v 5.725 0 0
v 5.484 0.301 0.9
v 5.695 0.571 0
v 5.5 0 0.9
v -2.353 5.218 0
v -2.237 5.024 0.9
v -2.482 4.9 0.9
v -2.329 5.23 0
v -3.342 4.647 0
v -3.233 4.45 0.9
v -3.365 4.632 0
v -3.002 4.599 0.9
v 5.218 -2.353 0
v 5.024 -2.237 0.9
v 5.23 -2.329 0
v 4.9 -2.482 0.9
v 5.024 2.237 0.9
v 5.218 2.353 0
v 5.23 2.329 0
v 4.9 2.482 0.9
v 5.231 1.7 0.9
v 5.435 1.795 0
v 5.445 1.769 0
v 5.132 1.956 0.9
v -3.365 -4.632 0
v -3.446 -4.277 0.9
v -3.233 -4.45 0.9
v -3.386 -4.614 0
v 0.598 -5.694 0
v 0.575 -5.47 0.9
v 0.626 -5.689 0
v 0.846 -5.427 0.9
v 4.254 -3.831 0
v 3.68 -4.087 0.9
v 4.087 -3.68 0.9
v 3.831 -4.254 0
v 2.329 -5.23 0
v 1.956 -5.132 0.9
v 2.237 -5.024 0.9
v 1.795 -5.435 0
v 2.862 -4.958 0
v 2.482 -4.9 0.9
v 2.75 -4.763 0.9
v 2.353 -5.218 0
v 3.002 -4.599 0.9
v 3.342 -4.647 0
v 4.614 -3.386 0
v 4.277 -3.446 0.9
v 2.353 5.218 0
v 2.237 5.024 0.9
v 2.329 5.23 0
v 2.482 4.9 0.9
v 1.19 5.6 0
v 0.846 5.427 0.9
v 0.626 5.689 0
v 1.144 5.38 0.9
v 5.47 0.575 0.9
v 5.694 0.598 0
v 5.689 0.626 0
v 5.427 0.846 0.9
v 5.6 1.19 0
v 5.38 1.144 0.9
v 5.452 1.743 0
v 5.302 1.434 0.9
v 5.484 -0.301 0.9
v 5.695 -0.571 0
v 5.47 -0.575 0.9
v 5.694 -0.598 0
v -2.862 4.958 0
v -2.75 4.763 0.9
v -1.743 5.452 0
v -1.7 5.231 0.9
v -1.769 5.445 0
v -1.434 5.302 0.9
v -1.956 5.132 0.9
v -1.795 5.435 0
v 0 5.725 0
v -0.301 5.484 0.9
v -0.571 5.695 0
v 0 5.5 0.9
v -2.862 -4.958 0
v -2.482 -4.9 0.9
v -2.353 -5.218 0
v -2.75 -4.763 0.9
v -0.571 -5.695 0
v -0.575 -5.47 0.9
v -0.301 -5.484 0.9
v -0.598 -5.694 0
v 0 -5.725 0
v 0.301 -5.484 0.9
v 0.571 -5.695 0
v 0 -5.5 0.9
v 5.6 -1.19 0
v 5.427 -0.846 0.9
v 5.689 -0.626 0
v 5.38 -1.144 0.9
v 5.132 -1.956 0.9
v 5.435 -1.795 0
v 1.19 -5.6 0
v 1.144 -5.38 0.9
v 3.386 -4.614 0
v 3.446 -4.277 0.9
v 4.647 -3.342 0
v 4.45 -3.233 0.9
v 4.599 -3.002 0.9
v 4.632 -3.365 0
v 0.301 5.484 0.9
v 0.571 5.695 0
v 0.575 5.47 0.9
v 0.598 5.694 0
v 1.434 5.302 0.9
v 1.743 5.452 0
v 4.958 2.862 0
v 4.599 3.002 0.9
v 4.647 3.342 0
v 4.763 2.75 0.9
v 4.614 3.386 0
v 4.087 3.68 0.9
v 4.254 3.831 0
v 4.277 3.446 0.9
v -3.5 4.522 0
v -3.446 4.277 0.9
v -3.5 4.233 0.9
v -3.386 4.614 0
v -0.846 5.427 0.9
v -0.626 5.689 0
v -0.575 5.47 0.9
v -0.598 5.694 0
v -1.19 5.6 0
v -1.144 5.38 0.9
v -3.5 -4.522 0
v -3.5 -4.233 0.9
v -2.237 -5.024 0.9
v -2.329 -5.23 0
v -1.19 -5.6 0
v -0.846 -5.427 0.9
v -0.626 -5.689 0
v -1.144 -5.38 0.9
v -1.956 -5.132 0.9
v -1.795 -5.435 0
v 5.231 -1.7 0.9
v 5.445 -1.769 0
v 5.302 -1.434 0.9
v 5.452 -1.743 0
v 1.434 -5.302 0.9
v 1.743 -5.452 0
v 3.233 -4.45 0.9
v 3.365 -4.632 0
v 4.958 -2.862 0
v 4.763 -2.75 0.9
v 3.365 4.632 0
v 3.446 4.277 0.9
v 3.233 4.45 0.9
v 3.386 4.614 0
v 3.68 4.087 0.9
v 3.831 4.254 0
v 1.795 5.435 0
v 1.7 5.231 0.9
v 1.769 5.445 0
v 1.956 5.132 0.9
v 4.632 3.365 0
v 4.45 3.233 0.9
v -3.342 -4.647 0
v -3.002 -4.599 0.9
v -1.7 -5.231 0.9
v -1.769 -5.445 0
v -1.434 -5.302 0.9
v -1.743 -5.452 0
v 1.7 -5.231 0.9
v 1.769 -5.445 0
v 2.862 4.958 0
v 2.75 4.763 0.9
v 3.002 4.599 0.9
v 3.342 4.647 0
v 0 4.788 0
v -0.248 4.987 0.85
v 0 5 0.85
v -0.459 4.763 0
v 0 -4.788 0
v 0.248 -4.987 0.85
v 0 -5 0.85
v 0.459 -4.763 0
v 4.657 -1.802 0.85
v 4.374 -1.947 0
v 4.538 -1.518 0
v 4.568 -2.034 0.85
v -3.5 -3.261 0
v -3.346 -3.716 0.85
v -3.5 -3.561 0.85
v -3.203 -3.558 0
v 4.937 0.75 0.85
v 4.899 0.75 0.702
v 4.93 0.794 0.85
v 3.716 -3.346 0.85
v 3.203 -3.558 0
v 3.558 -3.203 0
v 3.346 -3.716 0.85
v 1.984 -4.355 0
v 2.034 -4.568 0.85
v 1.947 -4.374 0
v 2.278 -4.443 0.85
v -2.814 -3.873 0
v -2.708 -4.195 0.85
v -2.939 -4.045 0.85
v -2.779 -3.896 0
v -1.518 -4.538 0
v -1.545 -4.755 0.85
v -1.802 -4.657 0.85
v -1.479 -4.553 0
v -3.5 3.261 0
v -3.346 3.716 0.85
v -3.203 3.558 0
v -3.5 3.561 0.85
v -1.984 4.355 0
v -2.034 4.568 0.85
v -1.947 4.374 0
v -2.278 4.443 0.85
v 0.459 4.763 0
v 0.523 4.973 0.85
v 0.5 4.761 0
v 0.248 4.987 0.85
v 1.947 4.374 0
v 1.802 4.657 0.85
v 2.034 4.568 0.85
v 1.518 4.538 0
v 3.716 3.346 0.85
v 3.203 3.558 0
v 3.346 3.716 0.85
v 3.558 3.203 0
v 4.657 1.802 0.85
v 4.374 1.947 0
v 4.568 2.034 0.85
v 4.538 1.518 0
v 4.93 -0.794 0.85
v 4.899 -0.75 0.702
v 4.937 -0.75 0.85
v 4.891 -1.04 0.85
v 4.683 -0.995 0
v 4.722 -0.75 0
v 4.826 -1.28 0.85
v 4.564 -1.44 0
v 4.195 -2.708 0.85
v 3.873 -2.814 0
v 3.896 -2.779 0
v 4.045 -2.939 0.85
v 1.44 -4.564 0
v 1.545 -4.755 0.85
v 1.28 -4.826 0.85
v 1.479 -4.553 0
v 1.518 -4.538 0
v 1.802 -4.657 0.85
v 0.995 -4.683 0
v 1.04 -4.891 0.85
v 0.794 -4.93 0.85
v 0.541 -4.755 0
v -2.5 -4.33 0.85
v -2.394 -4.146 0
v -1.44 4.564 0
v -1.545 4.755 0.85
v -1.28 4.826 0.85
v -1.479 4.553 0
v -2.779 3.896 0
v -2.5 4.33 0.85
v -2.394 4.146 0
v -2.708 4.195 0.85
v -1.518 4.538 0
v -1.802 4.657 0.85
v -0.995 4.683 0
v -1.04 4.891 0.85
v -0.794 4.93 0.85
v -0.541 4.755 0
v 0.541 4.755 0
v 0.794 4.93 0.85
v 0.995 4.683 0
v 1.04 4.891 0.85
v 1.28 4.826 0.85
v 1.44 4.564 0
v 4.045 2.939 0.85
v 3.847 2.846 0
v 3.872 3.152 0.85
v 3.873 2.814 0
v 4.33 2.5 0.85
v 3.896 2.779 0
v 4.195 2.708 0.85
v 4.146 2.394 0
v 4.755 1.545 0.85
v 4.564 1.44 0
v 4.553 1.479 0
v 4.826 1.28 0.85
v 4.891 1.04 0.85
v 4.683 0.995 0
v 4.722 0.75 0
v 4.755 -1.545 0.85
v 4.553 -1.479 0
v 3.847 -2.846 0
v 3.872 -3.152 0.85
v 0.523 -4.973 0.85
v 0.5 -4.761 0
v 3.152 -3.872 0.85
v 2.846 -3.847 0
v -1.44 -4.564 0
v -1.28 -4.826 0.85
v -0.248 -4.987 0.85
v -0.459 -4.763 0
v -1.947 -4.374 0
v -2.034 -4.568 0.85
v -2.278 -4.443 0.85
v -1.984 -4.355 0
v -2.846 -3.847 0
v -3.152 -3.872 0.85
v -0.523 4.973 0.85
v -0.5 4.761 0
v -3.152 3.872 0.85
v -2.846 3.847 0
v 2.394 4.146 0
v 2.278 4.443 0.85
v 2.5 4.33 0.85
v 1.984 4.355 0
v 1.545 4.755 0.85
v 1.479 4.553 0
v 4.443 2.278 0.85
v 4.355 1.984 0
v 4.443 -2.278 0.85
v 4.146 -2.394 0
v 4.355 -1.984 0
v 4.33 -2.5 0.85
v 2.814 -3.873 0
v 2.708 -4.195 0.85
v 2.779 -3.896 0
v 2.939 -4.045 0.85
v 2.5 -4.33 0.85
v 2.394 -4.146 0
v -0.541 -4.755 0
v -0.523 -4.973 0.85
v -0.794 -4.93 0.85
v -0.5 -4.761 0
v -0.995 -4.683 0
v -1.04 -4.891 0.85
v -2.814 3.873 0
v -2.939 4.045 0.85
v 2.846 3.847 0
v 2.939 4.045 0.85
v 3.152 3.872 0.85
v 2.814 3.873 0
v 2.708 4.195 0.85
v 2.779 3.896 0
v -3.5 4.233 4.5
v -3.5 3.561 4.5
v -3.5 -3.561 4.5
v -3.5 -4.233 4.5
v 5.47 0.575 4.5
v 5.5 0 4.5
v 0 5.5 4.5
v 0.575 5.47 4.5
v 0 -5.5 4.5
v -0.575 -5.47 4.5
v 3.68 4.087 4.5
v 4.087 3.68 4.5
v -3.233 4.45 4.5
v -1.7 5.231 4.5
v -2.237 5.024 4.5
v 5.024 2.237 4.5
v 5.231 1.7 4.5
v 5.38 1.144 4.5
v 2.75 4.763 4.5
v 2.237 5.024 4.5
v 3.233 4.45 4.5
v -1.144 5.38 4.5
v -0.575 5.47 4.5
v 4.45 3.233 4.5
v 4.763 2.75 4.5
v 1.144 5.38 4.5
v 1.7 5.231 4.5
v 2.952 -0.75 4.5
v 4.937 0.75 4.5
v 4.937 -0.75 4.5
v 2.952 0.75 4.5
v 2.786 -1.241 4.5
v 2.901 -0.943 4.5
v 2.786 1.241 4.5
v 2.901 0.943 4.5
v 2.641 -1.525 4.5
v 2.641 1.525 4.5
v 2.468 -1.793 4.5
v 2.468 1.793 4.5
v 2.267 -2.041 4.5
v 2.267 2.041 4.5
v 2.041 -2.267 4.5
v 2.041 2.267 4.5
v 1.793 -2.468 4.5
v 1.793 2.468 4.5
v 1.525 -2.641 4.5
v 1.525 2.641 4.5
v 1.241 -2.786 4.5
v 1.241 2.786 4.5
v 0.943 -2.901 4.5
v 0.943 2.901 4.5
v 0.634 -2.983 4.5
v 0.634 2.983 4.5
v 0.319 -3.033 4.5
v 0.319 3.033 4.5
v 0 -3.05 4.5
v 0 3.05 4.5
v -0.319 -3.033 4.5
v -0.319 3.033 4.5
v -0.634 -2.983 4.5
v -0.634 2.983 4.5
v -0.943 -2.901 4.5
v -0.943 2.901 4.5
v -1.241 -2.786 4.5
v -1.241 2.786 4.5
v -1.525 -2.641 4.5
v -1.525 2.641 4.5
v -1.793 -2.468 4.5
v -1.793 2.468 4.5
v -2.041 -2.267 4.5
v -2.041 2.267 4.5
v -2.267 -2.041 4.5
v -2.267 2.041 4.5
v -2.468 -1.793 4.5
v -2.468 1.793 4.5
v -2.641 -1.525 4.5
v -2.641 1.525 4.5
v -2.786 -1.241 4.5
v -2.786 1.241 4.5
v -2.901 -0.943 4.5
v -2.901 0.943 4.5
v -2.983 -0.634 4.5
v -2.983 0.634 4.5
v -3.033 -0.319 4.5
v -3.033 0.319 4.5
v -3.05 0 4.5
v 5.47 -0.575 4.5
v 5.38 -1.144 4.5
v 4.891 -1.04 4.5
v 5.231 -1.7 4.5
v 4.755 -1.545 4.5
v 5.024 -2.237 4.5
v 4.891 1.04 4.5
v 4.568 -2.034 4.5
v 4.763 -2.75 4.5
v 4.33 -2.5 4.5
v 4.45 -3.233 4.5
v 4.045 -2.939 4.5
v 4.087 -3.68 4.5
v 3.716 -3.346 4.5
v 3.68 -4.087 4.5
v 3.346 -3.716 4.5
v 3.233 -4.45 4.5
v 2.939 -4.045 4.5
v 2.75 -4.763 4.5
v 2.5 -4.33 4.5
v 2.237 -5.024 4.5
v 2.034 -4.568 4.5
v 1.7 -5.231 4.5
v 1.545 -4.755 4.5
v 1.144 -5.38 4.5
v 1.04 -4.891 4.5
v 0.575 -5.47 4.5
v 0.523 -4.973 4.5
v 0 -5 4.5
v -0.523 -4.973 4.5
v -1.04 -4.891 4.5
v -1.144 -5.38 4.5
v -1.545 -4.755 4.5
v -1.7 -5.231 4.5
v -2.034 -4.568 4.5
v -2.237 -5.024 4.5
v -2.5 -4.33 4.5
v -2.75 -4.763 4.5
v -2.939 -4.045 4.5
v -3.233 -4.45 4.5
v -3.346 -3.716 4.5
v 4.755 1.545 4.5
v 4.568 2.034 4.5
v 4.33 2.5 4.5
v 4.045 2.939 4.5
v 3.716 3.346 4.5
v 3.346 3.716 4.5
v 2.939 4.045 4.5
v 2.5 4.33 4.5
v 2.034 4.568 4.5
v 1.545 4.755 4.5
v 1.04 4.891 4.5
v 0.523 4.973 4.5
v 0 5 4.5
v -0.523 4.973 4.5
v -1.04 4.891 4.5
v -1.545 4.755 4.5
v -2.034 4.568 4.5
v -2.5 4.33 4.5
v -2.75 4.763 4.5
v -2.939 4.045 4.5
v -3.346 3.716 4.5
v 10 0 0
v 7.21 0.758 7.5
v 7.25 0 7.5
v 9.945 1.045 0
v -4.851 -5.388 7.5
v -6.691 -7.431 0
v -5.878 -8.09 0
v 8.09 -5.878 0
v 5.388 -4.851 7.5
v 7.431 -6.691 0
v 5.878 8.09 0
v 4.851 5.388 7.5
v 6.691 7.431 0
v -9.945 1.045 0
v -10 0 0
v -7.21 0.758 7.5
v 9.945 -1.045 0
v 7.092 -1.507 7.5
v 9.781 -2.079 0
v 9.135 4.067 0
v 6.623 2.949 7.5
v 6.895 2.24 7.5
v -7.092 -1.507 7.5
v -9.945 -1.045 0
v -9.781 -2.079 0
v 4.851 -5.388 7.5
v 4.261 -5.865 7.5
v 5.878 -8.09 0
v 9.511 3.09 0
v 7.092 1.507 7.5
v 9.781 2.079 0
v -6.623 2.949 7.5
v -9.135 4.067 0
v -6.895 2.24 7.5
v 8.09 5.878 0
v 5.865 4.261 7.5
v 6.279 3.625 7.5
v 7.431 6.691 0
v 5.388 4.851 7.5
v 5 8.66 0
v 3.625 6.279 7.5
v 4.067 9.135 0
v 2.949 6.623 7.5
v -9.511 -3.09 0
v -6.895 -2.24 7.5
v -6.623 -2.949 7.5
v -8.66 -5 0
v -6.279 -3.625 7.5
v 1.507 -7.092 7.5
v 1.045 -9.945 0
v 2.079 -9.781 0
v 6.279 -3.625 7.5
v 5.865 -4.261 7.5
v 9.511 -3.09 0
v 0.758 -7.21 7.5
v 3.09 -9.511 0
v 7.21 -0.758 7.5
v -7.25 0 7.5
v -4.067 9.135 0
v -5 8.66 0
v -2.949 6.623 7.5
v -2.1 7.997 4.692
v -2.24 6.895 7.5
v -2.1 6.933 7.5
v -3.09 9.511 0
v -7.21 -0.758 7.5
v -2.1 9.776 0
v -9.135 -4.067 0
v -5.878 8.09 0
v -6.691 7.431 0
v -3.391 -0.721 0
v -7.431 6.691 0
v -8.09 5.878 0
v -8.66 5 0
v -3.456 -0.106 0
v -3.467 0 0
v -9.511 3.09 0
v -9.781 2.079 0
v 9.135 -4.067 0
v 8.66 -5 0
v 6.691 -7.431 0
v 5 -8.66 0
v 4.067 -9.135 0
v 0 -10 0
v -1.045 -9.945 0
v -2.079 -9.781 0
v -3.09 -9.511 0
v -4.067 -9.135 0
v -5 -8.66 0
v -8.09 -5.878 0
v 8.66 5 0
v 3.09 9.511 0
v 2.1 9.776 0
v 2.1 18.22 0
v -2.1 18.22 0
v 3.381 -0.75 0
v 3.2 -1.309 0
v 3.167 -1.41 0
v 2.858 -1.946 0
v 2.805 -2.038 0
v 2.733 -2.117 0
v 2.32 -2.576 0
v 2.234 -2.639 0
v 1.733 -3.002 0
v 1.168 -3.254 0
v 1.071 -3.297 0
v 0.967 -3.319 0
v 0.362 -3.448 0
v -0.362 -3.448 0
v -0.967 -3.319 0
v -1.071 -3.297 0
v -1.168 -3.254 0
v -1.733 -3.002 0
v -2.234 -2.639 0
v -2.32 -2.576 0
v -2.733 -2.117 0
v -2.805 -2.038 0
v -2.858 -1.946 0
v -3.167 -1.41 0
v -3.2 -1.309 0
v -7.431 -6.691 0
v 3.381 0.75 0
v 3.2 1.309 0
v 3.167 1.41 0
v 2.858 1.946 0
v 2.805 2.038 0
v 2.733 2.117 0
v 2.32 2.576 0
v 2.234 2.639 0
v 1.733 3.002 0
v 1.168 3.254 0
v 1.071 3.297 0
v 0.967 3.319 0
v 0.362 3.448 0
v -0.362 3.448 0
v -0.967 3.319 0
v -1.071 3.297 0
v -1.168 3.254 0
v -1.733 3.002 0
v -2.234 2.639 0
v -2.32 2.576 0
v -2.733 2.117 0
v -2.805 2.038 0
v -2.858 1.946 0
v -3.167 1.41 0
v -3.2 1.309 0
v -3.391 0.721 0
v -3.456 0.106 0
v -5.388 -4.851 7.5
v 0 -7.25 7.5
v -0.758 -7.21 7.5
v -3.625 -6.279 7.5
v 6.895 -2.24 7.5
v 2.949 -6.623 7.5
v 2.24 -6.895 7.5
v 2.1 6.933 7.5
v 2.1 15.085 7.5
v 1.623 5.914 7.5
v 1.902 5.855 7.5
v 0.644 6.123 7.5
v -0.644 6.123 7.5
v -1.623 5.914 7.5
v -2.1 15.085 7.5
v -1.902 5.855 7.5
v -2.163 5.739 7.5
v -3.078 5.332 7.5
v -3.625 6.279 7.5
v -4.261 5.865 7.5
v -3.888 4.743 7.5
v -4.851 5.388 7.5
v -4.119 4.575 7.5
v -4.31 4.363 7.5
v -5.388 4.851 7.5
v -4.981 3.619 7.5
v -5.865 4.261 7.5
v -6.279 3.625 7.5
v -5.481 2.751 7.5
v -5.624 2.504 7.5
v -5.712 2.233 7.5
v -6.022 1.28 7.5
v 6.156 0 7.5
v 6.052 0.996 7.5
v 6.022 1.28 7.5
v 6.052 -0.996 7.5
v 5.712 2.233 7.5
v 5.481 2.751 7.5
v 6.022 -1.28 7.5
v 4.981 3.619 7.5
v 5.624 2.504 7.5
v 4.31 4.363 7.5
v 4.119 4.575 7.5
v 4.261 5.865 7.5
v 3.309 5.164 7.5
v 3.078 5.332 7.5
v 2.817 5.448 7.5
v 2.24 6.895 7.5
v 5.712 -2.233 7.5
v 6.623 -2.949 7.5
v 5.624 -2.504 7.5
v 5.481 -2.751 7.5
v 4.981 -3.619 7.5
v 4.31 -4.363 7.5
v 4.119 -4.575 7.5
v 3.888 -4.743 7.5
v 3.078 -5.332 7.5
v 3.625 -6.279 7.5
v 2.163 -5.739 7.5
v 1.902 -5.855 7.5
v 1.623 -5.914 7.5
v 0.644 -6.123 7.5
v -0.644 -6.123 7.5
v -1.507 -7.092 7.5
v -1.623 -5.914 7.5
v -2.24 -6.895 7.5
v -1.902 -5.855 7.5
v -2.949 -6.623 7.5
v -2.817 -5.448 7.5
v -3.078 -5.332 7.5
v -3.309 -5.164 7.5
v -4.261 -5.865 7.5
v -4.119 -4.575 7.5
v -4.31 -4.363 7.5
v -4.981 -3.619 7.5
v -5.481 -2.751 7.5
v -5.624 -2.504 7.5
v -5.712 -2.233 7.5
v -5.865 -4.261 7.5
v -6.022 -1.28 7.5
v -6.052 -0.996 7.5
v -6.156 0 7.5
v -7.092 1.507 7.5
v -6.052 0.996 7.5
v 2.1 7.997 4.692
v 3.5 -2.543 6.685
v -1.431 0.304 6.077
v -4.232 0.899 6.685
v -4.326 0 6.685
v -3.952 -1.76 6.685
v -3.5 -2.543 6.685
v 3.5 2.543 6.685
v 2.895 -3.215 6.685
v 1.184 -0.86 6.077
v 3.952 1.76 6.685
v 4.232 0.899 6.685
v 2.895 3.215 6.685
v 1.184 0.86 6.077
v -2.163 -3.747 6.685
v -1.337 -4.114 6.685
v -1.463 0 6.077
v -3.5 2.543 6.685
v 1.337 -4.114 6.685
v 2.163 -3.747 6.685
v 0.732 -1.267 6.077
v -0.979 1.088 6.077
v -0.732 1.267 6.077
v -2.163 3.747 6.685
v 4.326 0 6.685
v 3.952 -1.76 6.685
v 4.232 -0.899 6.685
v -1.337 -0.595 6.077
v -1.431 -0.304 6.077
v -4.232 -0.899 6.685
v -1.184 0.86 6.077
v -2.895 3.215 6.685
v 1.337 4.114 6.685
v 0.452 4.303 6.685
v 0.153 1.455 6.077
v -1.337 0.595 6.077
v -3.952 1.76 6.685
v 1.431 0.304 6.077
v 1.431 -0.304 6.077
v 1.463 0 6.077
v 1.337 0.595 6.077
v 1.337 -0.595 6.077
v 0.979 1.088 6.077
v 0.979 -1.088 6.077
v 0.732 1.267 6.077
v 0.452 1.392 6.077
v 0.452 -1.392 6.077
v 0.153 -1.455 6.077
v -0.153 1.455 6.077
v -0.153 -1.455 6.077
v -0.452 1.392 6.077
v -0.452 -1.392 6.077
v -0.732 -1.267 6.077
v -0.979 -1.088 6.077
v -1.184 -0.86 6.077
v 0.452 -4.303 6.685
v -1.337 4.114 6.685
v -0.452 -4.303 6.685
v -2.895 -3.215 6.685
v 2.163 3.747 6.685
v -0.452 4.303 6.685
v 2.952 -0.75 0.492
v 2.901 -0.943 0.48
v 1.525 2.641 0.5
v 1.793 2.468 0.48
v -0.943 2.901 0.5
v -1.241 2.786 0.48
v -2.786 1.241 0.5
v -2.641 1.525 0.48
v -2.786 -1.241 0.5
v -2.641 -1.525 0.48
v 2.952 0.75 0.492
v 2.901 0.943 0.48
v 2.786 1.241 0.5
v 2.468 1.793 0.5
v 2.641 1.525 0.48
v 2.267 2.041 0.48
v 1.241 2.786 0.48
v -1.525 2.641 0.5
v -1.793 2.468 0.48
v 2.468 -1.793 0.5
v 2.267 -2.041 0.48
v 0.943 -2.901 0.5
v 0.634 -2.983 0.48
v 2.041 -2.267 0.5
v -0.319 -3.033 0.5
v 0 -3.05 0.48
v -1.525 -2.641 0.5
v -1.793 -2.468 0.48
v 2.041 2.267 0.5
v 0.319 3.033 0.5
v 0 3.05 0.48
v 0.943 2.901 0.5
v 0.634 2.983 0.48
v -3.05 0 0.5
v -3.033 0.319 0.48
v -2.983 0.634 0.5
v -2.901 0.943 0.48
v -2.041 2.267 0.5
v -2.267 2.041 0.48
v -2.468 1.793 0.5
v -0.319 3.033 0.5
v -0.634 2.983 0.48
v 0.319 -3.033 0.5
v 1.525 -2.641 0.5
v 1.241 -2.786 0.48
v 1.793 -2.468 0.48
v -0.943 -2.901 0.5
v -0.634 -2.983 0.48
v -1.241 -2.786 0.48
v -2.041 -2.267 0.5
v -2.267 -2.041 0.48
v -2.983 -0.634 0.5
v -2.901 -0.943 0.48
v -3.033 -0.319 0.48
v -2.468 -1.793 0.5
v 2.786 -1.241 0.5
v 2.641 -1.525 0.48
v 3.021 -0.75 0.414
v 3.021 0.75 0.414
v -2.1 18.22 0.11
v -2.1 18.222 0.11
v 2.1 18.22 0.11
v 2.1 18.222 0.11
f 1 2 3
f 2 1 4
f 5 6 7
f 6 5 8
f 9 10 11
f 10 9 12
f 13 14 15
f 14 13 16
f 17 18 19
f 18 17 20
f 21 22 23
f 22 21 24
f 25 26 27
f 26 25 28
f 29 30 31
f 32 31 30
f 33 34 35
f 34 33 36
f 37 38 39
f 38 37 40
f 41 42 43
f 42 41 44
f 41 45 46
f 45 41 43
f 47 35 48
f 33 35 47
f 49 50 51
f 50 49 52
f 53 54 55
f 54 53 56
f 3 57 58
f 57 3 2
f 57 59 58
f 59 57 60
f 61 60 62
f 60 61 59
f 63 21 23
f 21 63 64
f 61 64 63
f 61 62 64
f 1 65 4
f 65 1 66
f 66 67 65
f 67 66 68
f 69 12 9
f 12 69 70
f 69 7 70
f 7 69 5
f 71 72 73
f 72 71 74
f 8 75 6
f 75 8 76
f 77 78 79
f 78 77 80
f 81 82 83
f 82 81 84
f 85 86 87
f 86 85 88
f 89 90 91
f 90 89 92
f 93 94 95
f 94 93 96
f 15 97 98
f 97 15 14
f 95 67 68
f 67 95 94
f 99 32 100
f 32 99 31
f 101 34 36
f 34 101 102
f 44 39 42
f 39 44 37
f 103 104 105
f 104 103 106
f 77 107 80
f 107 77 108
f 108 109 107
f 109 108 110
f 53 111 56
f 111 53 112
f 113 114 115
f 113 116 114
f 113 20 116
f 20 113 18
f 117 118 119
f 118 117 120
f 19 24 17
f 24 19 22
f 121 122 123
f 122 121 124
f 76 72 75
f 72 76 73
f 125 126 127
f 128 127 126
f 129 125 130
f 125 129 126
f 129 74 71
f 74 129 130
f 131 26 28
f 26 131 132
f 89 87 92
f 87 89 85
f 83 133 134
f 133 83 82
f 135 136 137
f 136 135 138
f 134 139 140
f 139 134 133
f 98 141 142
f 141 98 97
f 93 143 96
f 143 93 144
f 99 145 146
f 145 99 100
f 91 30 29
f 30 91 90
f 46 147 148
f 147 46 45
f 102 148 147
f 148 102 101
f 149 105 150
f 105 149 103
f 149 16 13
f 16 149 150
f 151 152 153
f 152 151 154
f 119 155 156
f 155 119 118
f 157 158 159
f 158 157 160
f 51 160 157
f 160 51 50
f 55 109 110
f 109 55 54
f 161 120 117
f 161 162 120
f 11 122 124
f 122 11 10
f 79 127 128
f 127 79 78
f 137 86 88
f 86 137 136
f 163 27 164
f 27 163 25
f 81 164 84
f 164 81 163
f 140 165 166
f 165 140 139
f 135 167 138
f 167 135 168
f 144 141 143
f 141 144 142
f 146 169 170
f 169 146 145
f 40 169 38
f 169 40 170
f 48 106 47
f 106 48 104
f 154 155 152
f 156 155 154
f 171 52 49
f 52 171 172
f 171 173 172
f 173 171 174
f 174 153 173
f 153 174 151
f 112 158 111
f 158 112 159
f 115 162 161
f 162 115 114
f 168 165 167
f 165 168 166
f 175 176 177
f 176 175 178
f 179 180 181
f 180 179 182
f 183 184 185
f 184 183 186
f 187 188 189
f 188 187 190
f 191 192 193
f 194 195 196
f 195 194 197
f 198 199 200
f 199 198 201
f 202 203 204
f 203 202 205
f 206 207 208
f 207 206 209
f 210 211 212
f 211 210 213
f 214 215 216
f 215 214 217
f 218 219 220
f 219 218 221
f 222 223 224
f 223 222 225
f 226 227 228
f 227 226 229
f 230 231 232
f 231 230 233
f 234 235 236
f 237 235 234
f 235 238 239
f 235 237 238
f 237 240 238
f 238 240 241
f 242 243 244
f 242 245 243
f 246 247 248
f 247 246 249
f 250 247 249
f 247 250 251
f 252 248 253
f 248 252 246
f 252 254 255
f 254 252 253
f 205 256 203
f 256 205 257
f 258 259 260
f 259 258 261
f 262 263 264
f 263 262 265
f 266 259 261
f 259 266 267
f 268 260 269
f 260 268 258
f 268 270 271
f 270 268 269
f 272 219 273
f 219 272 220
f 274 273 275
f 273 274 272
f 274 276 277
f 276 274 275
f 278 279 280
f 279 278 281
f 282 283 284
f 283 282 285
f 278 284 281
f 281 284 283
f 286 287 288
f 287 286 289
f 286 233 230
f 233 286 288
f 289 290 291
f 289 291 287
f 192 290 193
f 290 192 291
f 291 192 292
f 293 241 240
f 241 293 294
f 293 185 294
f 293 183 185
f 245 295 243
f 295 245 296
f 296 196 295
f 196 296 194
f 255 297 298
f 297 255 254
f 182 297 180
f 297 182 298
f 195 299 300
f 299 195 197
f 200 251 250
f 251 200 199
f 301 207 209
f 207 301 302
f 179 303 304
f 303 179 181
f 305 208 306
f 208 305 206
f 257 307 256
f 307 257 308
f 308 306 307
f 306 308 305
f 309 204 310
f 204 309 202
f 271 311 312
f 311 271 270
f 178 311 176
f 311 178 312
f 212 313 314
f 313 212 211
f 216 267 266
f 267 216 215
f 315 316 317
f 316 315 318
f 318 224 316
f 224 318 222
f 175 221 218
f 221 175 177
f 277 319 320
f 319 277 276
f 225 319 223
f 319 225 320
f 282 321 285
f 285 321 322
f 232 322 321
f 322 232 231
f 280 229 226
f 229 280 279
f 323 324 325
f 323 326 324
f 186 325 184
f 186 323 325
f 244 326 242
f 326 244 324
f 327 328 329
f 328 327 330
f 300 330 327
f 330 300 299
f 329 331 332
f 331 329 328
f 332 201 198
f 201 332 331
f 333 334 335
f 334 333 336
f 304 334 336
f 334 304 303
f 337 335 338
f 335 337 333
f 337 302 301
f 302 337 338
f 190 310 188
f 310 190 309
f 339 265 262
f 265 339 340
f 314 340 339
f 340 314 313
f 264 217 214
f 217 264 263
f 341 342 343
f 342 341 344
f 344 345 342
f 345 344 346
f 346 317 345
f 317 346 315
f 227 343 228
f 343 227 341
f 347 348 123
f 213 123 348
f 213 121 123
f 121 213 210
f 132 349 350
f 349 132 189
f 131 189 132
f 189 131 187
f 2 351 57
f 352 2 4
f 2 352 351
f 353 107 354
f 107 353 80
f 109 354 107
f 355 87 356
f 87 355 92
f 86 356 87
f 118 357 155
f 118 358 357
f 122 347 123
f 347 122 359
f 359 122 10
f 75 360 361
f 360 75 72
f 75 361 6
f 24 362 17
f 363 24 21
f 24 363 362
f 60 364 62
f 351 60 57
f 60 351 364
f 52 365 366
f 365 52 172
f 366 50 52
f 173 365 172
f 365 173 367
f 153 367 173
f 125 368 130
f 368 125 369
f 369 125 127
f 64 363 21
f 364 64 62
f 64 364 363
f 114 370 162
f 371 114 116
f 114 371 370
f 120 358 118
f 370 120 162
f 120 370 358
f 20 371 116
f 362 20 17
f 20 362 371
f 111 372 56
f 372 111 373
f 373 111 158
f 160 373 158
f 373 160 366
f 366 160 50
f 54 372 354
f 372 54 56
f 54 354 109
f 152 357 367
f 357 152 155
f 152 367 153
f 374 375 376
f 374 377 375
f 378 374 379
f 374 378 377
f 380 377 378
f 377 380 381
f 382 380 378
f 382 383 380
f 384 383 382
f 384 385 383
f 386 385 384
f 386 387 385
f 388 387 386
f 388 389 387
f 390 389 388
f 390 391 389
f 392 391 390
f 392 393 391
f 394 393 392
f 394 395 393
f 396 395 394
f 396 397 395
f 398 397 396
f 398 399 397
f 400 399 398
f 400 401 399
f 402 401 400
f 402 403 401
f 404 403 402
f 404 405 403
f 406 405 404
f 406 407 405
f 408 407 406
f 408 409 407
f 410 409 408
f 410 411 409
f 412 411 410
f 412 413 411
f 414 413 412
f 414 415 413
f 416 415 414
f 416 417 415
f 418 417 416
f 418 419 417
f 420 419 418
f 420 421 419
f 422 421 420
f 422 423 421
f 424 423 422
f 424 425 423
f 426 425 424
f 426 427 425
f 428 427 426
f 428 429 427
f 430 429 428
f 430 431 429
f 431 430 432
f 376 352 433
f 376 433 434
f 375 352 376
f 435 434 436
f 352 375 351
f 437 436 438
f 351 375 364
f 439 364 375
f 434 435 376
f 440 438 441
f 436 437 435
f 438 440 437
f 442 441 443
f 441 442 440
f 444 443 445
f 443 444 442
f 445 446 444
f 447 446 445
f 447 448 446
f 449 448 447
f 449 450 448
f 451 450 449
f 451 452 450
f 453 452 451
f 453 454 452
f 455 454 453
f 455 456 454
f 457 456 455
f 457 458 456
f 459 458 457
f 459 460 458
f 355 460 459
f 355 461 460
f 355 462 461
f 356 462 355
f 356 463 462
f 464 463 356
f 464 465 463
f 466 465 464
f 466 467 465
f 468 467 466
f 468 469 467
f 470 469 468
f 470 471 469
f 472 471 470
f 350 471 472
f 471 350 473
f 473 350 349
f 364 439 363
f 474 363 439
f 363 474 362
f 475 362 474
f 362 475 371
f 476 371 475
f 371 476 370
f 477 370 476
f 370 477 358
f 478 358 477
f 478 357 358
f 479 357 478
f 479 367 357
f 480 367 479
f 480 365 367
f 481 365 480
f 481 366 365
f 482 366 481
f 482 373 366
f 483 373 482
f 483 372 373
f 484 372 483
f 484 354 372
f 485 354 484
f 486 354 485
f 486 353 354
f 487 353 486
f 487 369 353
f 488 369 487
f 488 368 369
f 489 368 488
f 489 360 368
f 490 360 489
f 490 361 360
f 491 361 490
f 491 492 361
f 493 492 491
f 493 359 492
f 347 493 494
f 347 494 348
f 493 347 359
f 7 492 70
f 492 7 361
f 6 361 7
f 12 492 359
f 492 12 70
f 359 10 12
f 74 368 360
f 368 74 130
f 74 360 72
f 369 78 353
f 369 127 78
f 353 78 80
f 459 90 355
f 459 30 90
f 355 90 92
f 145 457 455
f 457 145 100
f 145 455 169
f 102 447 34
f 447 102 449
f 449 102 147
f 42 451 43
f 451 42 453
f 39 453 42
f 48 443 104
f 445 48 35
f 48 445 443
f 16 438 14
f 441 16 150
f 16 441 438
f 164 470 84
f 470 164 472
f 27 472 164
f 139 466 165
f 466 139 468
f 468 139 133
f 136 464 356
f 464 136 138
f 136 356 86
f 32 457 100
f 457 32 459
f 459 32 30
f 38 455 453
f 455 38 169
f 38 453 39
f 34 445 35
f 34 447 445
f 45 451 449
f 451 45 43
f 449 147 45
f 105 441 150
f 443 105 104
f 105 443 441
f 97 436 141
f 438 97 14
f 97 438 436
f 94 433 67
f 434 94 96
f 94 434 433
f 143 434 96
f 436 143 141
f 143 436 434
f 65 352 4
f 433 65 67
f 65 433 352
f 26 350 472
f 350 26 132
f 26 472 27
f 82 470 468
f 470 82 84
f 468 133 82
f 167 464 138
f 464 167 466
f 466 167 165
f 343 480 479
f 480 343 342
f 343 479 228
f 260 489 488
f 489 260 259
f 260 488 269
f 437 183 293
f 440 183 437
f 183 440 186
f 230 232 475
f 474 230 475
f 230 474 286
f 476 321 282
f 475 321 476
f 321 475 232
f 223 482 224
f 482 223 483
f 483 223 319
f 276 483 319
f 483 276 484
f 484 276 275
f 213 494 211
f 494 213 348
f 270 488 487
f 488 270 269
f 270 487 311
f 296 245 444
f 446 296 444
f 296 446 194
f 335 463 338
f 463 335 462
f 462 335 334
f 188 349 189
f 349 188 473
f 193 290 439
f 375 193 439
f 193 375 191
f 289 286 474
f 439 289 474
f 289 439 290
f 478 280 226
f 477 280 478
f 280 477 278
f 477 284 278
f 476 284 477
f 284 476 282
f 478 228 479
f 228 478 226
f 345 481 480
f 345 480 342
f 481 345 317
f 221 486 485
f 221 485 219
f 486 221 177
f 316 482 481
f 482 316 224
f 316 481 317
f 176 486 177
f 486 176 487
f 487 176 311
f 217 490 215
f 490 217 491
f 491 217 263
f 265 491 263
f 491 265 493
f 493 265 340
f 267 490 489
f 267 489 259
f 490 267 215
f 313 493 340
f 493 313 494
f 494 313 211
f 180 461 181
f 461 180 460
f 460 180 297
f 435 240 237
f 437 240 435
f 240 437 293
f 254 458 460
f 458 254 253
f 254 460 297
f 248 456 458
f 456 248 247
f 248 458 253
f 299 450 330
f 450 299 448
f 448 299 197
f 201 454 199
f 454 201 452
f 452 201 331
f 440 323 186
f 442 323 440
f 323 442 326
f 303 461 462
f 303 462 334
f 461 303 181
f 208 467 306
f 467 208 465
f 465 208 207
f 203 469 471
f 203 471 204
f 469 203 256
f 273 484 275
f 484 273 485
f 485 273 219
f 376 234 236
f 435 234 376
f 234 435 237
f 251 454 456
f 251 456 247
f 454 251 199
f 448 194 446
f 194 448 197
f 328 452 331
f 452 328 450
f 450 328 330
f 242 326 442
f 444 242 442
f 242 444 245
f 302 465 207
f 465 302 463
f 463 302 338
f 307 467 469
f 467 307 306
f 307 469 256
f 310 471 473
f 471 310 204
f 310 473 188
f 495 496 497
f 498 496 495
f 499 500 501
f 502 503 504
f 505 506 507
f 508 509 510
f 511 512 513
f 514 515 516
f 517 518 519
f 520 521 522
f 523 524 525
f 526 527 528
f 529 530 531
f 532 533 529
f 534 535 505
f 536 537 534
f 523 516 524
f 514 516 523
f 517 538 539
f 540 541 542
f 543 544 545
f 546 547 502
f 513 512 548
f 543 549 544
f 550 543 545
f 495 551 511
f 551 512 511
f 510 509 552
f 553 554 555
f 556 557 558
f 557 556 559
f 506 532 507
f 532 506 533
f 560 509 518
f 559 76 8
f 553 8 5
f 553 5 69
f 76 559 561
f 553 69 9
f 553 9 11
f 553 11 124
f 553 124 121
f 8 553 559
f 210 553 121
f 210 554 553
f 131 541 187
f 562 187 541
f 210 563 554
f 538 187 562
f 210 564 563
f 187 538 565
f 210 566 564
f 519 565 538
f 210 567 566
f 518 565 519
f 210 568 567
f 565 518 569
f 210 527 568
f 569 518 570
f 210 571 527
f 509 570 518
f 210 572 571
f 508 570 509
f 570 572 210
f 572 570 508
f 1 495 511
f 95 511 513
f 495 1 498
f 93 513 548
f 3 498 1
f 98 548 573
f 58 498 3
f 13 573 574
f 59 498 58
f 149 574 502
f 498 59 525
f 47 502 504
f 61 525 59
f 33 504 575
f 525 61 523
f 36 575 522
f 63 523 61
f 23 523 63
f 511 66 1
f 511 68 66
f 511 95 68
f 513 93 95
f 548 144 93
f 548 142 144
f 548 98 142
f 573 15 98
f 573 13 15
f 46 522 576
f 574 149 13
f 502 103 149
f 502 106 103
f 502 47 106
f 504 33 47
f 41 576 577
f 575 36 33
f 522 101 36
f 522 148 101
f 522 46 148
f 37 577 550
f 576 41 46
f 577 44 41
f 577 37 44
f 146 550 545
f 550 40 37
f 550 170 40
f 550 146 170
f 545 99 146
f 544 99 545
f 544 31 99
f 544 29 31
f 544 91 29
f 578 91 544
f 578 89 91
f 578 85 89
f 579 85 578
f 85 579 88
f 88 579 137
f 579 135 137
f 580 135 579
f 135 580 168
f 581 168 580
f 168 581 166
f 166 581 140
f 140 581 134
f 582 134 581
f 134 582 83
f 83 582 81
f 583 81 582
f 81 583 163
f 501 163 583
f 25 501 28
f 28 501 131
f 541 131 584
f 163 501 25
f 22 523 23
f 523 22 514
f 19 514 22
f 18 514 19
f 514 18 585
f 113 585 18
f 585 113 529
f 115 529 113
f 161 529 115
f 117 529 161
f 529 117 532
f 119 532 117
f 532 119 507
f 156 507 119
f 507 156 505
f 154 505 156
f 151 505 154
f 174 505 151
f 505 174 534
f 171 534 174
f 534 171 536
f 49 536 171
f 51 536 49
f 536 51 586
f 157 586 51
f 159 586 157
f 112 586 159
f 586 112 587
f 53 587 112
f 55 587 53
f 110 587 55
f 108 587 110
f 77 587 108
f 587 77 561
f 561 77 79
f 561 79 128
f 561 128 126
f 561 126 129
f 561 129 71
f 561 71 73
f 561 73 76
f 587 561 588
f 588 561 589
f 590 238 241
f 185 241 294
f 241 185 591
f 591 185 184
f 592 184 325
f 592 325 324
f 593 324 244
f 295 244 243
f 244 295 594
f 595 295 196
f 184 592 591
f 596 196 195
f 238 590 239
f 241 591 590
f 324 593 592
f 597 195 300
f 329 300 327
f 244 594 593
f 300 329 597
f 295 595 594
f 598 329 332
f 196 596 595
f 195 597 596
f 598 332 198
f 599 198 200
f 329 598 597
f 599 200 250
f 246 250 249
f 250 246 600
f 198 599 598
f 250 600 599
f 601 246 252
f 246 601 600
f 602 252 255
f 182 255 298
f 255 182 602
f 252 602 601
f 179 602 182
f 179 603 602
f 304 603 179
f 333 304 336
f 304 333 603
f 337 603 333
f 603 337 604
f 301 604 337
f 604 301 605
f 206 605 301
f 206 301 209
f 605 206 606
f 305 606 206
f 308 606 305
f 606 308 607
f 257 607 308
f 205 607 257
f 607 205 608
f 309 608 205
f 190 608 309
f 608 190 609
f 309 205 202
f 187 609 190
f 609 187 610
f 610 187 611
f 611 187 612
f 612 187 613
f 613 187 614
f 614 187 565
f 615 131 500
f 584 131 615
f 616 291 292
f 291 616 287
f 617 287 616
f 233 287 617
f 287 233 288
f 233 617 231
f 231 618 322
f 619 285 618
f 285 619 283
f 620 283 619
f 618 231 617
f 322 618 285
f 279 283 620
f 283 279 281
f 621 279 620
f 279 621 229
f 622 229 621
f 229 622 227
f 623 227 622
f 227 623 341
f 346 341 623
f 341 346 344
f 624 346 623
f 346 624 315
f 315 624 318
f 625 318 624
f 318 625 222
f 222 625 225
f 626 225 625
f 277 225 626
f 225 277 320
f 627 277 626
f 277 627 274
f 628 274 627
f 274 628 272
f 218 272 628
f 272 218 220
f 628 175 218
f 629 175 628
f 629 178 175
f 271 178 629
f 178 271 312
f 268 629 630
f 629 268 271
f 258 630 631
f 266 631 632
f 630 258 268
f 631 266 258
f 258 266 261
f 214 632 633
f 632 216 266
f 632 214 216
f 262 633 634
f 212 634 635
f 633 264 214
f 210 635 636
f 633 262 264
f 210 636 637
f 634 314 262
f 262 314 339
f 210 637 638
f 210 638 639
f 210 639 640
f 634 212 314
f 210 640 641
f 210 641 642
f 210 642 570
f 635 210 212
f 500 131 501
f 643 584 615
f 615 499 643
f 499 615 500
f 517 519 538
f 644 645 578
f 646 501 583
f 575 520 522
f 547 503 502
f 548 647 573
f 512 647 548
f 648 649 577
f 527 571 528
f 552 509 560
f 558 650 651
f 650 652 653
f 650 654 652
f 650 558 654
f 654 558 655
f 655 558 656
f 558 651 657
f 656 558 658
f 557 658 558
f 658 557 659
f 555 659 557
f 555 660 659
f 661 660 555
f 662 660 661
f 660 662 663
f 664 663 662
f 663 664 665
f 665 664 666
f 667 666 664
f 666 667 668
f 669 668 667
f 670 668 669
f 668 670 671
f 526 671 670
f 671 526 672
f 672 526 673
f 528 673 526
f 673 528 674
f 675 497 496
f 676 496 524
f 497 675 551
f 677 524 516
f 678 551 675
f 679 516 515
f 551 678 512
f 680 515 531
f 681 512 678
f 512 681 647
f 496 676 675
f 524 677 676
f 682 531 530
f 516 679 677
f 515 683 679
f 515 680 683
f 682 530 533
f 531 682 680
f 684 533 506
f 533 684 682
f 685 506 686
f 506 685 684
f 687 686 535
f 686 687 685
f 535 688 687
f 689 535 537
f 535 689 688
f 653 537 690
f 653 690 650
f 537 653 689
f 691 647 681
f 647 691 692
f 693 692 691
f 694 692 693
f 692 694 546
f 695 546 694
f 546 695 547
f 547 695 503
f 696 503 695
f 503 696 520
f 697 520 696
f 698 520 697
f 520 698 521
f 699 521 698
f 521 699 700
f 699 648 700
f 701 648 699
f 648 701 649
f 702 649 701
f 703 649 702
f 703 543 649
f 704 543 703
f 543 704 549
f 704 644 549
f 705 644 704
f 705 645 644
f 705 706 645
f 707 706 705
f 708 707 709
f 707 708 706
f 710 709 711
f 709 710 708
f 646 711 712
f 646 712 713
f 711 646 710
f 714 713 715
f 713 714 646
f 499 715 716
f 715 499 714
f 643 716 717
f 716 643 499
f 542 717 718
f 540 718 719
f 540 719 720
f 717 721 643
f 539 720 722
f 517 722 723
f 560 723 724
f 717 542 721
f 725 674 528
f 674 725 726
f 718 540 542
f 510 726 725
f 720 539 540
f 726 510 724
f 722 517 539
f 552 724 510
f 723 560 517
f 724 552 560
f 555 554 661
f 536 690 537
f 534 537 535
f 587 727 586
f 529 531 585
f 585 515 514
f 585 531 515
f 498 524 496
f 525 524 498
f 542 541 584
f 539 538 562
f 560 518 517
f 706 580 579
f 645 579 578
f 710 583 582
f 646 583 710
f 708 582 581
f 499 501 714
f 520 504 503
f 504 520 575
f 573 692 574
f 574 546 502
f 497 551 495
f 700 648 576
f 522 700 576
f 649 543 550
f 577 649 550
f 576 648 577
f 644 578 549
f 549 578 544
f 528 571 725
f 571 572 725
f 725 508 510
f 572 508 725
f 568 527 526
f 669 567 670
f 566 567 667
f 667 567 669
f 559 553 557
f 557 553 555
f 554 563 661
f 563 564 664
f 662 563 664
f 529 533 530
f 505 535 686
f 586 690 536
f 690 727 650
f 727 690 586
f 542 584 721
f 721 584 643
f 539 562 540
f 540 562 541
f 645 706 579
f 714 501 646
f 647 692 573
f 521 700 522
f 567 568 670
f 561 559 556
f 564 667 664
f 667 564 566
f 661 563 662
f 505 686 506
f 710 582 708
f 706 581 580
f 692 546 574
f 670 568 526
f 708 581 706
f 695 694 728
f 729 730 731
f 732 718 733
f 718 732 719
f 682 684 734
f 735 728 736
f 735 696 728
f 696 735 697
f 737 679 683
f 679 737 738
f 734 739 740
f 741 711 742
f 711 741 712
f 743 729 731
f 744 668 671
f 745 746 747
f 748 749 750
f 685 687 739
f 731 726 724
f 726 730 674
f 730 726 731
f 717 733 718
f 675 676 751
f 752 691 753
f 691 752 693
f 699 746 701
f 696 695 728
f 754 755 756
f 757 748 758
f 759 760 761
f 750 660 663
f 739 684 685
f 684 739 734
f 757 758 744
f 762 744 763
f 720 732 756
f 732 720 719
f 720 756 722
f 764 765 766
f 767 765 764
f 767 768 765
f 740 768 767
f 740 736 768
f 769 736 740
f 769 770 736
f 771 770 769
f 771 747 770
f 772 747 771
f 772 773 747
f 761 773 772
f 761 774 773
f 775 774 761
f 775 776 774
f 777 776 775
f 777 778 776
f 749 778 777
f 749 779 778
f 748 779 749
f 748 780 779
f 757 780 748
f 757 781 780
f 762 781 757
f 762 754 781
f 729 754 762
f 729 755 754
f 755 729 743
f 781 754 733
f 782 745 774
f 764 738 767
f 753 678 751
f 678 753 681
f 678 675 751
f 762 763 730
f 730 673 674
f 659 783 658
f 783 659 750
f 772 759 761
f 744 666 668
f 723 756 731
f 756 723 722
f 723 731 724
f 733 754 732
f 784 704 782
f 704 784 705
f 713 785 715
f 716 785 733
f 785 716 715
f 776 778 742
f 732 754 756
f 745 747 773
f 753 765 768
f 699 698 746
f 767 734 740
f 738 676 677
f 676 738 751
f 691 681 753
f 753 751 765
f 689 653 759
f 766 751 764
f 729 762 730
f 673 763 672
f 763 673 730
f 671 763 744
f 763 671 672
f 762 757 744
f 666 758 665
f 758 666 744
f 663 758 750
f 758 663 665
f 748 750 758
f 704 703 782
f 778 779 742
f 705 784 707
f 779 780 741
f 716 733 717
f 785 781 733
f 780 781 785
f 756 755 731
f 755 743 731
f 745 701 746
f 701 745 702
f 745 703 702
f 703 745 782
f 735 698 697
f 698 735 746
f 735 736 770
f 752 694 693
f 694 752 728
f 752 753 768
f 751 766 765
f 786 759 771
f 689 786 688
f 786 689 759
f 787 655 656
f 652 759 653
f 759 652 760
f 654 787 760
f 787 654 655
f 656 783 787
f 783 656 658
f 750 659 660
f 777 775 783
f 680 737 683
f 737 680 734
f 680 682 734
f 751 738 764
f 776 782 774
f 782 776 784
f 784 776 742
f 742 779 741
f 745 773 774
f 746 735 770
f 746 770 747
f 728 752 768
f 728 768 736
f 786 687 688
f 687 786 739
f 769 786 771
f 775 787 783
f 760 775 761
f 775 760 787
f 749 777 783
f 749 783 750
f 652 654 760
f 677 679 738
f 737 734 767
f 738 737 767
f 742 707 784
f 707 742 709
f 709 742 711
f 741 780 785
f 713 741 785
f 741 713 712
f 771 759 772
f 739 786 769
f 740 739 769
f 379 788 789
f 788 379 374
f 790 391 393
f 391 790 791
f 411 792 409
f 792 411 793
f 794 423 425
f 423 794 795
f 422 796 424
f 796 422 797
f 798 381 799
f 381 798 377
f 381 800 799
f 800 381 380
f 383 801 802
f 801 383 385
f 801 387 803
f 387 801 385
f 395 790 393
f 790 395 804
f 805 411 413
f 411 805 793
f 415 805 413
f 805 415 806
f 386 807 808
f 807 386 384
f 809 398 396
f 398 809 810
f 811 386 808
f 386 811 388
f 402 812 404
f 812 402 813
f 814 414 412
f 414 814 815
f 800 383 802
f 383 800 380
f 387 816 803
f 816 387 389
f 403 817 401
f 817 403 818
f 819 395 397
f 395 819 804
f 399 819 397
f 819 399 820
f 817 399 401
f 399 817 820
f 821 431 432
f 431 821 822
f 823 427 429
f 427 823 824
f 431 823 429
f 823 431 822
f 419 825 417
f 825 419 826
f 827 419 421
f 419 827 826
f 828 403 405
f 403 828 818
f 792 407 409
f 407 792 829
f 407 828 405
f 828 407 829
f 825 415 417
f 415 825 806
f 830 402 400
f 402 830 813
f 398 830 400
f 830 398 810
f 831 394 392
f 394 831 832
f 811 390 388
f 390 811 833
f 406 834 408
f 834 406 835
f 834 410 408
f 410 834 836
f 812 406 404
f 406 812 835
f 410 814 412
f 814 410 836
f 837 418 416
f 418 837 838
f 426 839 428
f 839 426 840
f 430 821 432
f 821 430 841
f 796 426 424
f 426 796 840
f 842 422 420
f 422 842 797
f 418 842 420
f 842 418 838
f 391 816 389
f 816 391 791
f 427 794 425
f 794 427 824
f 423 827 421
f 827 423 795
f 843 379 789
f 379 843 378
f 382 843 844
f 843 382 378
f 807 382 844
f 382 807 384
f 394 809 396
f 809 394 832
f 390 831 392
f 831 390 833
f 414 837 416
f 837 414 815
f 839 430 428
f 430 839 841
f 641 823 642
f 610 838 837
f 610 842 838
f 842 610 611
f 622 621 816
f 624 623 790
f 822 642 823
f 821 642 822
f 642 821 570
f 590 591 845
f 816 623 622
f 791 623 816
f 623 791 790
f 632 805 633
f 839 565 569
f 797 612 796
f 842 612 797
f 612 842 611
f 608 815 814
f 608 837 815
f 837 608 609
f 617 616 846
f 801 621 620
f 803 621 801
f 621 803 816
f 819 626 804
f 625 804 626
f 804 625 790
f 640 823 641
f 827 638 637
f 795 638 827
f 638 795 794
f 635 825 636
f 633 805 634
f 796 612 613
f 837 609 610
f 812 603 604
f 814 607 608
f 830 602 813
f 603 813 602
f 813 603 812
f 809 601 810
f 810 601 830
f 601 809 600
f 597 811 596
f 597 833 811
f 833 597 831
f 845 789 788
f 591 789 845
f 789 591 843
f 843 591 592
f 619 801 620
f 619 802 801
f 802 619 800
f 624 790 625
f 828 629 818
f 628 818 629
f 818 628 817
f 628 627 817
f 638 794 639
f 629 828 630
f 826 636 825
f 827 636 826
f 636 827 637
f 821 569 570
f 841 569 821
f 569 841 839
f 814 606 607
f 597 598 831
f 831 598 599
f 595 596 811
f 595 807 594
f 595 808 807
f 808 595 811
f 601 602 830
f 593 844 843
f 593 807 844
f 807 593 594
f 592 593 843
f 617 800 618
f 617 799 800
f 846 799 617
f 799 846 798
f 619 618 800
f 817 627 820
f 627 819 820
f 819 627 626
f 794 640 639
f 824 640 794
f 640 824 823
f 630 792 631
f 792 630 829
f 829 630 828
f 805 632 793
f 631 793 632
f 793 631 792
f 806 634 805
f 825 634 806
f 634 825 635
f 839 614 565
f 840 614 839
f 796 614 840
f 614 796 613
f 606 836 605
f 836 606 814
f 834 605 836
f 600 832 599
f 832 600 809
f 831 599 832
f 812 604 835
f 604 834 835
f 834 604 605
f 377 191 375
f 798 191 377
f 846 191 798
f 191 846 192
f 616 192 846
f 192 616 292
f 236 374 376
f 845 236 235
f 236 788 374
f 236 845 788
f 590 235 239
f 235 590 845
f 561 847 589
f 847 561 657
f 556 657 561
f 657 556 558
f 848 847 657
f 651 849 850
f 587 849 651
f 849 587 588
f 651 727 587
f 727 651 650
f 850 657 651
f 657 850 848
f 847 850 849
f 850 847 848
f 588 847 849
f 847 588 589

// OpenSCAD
// PRUSA iteration3
// LCD Knob
// GNU GPL v3
// Josef Průša <iam@josefprusa.cz> and contributors
// http://www.reprap.org/wiki/Prusa_Mendel
// http://prusamendel.org

difference()
{
    // main body
    translate([0, 0, 0]) rotate(a = [0, 0, 0]) cylinder(h = 7.5, r1 = 10, r = 7.25, $fn = 60);
    translate([0, 0, 20]) rotate(a = [0, 0, 0]) sphere(14);

    // knob cutout
    translate([0, 0, -0.1]) rotate(a = [0, 0, 0]) cylinder(h = 4.6, d = 6.1, $fn = 60);
    translate([0, 0, -0.1]) rotate(a = [0, 0, 0]) cylinder(h = 0.6, d1 = 7.1, d2 = 6.1 , $fn = 30);
    translate([0, 0.75, -0.1]) rotate(a = [0, 0, -90]) cube([1.5, 5.3, 4.6]);

    // first layer correction
    union()
    {
        difference()
        {
            translate([0, 0, -0.1]) rotate(a = [0, 0, 0]) cylinder(h = 2, d1 = 11.5, d2 = 10.5, $fn = 60);
            translate([0, 0, -0.15]) rotate(a = [0, 0, 0]) cylinder(h = 2, d1 = 9.5, d2 = 10.5, $fn = 60);
            translate([0, 0, 1]) rotate(a = [0, 0, 0]) cylinder(h = 2, d = 13, $fn = 30);
            translate([-13.5, -6, -0.1]) rotate(a = [0, 0, 0]) cube([10, 12, 4.6]);
        }
    }

    difference()
    {
        translate([0, 0, -0.1]) rotate(a = [0, 0, 0]) cylinder(h = 4.6, d = 11, $fn = 60);
        translate([0, 0, -0.1]) rotate(a = [0, 0, 0]) cylinder(h = 4.6, d = 10, $fn = 60);
        translate([-13.5, -6, -0.1]) rotate(a = [0, 0, 0]) cube([10, 12, 4.6]);
    }
}

// handle
difference()
{
    translate([-2.1, 6.5, 0]) rotate(a = [0, 0, 0]) cube([4.2, 12, 7.5]);
    translate([-2.5, 15, 7.7]) rotate(a = [-67, 0, 0]) cube([5.5, 11, 7.5]);
    translate([-2.2, 18.22, -0.1]) rotate(a = [0, 0, 0]) cube([4.4, 12, 0.21]);
}
